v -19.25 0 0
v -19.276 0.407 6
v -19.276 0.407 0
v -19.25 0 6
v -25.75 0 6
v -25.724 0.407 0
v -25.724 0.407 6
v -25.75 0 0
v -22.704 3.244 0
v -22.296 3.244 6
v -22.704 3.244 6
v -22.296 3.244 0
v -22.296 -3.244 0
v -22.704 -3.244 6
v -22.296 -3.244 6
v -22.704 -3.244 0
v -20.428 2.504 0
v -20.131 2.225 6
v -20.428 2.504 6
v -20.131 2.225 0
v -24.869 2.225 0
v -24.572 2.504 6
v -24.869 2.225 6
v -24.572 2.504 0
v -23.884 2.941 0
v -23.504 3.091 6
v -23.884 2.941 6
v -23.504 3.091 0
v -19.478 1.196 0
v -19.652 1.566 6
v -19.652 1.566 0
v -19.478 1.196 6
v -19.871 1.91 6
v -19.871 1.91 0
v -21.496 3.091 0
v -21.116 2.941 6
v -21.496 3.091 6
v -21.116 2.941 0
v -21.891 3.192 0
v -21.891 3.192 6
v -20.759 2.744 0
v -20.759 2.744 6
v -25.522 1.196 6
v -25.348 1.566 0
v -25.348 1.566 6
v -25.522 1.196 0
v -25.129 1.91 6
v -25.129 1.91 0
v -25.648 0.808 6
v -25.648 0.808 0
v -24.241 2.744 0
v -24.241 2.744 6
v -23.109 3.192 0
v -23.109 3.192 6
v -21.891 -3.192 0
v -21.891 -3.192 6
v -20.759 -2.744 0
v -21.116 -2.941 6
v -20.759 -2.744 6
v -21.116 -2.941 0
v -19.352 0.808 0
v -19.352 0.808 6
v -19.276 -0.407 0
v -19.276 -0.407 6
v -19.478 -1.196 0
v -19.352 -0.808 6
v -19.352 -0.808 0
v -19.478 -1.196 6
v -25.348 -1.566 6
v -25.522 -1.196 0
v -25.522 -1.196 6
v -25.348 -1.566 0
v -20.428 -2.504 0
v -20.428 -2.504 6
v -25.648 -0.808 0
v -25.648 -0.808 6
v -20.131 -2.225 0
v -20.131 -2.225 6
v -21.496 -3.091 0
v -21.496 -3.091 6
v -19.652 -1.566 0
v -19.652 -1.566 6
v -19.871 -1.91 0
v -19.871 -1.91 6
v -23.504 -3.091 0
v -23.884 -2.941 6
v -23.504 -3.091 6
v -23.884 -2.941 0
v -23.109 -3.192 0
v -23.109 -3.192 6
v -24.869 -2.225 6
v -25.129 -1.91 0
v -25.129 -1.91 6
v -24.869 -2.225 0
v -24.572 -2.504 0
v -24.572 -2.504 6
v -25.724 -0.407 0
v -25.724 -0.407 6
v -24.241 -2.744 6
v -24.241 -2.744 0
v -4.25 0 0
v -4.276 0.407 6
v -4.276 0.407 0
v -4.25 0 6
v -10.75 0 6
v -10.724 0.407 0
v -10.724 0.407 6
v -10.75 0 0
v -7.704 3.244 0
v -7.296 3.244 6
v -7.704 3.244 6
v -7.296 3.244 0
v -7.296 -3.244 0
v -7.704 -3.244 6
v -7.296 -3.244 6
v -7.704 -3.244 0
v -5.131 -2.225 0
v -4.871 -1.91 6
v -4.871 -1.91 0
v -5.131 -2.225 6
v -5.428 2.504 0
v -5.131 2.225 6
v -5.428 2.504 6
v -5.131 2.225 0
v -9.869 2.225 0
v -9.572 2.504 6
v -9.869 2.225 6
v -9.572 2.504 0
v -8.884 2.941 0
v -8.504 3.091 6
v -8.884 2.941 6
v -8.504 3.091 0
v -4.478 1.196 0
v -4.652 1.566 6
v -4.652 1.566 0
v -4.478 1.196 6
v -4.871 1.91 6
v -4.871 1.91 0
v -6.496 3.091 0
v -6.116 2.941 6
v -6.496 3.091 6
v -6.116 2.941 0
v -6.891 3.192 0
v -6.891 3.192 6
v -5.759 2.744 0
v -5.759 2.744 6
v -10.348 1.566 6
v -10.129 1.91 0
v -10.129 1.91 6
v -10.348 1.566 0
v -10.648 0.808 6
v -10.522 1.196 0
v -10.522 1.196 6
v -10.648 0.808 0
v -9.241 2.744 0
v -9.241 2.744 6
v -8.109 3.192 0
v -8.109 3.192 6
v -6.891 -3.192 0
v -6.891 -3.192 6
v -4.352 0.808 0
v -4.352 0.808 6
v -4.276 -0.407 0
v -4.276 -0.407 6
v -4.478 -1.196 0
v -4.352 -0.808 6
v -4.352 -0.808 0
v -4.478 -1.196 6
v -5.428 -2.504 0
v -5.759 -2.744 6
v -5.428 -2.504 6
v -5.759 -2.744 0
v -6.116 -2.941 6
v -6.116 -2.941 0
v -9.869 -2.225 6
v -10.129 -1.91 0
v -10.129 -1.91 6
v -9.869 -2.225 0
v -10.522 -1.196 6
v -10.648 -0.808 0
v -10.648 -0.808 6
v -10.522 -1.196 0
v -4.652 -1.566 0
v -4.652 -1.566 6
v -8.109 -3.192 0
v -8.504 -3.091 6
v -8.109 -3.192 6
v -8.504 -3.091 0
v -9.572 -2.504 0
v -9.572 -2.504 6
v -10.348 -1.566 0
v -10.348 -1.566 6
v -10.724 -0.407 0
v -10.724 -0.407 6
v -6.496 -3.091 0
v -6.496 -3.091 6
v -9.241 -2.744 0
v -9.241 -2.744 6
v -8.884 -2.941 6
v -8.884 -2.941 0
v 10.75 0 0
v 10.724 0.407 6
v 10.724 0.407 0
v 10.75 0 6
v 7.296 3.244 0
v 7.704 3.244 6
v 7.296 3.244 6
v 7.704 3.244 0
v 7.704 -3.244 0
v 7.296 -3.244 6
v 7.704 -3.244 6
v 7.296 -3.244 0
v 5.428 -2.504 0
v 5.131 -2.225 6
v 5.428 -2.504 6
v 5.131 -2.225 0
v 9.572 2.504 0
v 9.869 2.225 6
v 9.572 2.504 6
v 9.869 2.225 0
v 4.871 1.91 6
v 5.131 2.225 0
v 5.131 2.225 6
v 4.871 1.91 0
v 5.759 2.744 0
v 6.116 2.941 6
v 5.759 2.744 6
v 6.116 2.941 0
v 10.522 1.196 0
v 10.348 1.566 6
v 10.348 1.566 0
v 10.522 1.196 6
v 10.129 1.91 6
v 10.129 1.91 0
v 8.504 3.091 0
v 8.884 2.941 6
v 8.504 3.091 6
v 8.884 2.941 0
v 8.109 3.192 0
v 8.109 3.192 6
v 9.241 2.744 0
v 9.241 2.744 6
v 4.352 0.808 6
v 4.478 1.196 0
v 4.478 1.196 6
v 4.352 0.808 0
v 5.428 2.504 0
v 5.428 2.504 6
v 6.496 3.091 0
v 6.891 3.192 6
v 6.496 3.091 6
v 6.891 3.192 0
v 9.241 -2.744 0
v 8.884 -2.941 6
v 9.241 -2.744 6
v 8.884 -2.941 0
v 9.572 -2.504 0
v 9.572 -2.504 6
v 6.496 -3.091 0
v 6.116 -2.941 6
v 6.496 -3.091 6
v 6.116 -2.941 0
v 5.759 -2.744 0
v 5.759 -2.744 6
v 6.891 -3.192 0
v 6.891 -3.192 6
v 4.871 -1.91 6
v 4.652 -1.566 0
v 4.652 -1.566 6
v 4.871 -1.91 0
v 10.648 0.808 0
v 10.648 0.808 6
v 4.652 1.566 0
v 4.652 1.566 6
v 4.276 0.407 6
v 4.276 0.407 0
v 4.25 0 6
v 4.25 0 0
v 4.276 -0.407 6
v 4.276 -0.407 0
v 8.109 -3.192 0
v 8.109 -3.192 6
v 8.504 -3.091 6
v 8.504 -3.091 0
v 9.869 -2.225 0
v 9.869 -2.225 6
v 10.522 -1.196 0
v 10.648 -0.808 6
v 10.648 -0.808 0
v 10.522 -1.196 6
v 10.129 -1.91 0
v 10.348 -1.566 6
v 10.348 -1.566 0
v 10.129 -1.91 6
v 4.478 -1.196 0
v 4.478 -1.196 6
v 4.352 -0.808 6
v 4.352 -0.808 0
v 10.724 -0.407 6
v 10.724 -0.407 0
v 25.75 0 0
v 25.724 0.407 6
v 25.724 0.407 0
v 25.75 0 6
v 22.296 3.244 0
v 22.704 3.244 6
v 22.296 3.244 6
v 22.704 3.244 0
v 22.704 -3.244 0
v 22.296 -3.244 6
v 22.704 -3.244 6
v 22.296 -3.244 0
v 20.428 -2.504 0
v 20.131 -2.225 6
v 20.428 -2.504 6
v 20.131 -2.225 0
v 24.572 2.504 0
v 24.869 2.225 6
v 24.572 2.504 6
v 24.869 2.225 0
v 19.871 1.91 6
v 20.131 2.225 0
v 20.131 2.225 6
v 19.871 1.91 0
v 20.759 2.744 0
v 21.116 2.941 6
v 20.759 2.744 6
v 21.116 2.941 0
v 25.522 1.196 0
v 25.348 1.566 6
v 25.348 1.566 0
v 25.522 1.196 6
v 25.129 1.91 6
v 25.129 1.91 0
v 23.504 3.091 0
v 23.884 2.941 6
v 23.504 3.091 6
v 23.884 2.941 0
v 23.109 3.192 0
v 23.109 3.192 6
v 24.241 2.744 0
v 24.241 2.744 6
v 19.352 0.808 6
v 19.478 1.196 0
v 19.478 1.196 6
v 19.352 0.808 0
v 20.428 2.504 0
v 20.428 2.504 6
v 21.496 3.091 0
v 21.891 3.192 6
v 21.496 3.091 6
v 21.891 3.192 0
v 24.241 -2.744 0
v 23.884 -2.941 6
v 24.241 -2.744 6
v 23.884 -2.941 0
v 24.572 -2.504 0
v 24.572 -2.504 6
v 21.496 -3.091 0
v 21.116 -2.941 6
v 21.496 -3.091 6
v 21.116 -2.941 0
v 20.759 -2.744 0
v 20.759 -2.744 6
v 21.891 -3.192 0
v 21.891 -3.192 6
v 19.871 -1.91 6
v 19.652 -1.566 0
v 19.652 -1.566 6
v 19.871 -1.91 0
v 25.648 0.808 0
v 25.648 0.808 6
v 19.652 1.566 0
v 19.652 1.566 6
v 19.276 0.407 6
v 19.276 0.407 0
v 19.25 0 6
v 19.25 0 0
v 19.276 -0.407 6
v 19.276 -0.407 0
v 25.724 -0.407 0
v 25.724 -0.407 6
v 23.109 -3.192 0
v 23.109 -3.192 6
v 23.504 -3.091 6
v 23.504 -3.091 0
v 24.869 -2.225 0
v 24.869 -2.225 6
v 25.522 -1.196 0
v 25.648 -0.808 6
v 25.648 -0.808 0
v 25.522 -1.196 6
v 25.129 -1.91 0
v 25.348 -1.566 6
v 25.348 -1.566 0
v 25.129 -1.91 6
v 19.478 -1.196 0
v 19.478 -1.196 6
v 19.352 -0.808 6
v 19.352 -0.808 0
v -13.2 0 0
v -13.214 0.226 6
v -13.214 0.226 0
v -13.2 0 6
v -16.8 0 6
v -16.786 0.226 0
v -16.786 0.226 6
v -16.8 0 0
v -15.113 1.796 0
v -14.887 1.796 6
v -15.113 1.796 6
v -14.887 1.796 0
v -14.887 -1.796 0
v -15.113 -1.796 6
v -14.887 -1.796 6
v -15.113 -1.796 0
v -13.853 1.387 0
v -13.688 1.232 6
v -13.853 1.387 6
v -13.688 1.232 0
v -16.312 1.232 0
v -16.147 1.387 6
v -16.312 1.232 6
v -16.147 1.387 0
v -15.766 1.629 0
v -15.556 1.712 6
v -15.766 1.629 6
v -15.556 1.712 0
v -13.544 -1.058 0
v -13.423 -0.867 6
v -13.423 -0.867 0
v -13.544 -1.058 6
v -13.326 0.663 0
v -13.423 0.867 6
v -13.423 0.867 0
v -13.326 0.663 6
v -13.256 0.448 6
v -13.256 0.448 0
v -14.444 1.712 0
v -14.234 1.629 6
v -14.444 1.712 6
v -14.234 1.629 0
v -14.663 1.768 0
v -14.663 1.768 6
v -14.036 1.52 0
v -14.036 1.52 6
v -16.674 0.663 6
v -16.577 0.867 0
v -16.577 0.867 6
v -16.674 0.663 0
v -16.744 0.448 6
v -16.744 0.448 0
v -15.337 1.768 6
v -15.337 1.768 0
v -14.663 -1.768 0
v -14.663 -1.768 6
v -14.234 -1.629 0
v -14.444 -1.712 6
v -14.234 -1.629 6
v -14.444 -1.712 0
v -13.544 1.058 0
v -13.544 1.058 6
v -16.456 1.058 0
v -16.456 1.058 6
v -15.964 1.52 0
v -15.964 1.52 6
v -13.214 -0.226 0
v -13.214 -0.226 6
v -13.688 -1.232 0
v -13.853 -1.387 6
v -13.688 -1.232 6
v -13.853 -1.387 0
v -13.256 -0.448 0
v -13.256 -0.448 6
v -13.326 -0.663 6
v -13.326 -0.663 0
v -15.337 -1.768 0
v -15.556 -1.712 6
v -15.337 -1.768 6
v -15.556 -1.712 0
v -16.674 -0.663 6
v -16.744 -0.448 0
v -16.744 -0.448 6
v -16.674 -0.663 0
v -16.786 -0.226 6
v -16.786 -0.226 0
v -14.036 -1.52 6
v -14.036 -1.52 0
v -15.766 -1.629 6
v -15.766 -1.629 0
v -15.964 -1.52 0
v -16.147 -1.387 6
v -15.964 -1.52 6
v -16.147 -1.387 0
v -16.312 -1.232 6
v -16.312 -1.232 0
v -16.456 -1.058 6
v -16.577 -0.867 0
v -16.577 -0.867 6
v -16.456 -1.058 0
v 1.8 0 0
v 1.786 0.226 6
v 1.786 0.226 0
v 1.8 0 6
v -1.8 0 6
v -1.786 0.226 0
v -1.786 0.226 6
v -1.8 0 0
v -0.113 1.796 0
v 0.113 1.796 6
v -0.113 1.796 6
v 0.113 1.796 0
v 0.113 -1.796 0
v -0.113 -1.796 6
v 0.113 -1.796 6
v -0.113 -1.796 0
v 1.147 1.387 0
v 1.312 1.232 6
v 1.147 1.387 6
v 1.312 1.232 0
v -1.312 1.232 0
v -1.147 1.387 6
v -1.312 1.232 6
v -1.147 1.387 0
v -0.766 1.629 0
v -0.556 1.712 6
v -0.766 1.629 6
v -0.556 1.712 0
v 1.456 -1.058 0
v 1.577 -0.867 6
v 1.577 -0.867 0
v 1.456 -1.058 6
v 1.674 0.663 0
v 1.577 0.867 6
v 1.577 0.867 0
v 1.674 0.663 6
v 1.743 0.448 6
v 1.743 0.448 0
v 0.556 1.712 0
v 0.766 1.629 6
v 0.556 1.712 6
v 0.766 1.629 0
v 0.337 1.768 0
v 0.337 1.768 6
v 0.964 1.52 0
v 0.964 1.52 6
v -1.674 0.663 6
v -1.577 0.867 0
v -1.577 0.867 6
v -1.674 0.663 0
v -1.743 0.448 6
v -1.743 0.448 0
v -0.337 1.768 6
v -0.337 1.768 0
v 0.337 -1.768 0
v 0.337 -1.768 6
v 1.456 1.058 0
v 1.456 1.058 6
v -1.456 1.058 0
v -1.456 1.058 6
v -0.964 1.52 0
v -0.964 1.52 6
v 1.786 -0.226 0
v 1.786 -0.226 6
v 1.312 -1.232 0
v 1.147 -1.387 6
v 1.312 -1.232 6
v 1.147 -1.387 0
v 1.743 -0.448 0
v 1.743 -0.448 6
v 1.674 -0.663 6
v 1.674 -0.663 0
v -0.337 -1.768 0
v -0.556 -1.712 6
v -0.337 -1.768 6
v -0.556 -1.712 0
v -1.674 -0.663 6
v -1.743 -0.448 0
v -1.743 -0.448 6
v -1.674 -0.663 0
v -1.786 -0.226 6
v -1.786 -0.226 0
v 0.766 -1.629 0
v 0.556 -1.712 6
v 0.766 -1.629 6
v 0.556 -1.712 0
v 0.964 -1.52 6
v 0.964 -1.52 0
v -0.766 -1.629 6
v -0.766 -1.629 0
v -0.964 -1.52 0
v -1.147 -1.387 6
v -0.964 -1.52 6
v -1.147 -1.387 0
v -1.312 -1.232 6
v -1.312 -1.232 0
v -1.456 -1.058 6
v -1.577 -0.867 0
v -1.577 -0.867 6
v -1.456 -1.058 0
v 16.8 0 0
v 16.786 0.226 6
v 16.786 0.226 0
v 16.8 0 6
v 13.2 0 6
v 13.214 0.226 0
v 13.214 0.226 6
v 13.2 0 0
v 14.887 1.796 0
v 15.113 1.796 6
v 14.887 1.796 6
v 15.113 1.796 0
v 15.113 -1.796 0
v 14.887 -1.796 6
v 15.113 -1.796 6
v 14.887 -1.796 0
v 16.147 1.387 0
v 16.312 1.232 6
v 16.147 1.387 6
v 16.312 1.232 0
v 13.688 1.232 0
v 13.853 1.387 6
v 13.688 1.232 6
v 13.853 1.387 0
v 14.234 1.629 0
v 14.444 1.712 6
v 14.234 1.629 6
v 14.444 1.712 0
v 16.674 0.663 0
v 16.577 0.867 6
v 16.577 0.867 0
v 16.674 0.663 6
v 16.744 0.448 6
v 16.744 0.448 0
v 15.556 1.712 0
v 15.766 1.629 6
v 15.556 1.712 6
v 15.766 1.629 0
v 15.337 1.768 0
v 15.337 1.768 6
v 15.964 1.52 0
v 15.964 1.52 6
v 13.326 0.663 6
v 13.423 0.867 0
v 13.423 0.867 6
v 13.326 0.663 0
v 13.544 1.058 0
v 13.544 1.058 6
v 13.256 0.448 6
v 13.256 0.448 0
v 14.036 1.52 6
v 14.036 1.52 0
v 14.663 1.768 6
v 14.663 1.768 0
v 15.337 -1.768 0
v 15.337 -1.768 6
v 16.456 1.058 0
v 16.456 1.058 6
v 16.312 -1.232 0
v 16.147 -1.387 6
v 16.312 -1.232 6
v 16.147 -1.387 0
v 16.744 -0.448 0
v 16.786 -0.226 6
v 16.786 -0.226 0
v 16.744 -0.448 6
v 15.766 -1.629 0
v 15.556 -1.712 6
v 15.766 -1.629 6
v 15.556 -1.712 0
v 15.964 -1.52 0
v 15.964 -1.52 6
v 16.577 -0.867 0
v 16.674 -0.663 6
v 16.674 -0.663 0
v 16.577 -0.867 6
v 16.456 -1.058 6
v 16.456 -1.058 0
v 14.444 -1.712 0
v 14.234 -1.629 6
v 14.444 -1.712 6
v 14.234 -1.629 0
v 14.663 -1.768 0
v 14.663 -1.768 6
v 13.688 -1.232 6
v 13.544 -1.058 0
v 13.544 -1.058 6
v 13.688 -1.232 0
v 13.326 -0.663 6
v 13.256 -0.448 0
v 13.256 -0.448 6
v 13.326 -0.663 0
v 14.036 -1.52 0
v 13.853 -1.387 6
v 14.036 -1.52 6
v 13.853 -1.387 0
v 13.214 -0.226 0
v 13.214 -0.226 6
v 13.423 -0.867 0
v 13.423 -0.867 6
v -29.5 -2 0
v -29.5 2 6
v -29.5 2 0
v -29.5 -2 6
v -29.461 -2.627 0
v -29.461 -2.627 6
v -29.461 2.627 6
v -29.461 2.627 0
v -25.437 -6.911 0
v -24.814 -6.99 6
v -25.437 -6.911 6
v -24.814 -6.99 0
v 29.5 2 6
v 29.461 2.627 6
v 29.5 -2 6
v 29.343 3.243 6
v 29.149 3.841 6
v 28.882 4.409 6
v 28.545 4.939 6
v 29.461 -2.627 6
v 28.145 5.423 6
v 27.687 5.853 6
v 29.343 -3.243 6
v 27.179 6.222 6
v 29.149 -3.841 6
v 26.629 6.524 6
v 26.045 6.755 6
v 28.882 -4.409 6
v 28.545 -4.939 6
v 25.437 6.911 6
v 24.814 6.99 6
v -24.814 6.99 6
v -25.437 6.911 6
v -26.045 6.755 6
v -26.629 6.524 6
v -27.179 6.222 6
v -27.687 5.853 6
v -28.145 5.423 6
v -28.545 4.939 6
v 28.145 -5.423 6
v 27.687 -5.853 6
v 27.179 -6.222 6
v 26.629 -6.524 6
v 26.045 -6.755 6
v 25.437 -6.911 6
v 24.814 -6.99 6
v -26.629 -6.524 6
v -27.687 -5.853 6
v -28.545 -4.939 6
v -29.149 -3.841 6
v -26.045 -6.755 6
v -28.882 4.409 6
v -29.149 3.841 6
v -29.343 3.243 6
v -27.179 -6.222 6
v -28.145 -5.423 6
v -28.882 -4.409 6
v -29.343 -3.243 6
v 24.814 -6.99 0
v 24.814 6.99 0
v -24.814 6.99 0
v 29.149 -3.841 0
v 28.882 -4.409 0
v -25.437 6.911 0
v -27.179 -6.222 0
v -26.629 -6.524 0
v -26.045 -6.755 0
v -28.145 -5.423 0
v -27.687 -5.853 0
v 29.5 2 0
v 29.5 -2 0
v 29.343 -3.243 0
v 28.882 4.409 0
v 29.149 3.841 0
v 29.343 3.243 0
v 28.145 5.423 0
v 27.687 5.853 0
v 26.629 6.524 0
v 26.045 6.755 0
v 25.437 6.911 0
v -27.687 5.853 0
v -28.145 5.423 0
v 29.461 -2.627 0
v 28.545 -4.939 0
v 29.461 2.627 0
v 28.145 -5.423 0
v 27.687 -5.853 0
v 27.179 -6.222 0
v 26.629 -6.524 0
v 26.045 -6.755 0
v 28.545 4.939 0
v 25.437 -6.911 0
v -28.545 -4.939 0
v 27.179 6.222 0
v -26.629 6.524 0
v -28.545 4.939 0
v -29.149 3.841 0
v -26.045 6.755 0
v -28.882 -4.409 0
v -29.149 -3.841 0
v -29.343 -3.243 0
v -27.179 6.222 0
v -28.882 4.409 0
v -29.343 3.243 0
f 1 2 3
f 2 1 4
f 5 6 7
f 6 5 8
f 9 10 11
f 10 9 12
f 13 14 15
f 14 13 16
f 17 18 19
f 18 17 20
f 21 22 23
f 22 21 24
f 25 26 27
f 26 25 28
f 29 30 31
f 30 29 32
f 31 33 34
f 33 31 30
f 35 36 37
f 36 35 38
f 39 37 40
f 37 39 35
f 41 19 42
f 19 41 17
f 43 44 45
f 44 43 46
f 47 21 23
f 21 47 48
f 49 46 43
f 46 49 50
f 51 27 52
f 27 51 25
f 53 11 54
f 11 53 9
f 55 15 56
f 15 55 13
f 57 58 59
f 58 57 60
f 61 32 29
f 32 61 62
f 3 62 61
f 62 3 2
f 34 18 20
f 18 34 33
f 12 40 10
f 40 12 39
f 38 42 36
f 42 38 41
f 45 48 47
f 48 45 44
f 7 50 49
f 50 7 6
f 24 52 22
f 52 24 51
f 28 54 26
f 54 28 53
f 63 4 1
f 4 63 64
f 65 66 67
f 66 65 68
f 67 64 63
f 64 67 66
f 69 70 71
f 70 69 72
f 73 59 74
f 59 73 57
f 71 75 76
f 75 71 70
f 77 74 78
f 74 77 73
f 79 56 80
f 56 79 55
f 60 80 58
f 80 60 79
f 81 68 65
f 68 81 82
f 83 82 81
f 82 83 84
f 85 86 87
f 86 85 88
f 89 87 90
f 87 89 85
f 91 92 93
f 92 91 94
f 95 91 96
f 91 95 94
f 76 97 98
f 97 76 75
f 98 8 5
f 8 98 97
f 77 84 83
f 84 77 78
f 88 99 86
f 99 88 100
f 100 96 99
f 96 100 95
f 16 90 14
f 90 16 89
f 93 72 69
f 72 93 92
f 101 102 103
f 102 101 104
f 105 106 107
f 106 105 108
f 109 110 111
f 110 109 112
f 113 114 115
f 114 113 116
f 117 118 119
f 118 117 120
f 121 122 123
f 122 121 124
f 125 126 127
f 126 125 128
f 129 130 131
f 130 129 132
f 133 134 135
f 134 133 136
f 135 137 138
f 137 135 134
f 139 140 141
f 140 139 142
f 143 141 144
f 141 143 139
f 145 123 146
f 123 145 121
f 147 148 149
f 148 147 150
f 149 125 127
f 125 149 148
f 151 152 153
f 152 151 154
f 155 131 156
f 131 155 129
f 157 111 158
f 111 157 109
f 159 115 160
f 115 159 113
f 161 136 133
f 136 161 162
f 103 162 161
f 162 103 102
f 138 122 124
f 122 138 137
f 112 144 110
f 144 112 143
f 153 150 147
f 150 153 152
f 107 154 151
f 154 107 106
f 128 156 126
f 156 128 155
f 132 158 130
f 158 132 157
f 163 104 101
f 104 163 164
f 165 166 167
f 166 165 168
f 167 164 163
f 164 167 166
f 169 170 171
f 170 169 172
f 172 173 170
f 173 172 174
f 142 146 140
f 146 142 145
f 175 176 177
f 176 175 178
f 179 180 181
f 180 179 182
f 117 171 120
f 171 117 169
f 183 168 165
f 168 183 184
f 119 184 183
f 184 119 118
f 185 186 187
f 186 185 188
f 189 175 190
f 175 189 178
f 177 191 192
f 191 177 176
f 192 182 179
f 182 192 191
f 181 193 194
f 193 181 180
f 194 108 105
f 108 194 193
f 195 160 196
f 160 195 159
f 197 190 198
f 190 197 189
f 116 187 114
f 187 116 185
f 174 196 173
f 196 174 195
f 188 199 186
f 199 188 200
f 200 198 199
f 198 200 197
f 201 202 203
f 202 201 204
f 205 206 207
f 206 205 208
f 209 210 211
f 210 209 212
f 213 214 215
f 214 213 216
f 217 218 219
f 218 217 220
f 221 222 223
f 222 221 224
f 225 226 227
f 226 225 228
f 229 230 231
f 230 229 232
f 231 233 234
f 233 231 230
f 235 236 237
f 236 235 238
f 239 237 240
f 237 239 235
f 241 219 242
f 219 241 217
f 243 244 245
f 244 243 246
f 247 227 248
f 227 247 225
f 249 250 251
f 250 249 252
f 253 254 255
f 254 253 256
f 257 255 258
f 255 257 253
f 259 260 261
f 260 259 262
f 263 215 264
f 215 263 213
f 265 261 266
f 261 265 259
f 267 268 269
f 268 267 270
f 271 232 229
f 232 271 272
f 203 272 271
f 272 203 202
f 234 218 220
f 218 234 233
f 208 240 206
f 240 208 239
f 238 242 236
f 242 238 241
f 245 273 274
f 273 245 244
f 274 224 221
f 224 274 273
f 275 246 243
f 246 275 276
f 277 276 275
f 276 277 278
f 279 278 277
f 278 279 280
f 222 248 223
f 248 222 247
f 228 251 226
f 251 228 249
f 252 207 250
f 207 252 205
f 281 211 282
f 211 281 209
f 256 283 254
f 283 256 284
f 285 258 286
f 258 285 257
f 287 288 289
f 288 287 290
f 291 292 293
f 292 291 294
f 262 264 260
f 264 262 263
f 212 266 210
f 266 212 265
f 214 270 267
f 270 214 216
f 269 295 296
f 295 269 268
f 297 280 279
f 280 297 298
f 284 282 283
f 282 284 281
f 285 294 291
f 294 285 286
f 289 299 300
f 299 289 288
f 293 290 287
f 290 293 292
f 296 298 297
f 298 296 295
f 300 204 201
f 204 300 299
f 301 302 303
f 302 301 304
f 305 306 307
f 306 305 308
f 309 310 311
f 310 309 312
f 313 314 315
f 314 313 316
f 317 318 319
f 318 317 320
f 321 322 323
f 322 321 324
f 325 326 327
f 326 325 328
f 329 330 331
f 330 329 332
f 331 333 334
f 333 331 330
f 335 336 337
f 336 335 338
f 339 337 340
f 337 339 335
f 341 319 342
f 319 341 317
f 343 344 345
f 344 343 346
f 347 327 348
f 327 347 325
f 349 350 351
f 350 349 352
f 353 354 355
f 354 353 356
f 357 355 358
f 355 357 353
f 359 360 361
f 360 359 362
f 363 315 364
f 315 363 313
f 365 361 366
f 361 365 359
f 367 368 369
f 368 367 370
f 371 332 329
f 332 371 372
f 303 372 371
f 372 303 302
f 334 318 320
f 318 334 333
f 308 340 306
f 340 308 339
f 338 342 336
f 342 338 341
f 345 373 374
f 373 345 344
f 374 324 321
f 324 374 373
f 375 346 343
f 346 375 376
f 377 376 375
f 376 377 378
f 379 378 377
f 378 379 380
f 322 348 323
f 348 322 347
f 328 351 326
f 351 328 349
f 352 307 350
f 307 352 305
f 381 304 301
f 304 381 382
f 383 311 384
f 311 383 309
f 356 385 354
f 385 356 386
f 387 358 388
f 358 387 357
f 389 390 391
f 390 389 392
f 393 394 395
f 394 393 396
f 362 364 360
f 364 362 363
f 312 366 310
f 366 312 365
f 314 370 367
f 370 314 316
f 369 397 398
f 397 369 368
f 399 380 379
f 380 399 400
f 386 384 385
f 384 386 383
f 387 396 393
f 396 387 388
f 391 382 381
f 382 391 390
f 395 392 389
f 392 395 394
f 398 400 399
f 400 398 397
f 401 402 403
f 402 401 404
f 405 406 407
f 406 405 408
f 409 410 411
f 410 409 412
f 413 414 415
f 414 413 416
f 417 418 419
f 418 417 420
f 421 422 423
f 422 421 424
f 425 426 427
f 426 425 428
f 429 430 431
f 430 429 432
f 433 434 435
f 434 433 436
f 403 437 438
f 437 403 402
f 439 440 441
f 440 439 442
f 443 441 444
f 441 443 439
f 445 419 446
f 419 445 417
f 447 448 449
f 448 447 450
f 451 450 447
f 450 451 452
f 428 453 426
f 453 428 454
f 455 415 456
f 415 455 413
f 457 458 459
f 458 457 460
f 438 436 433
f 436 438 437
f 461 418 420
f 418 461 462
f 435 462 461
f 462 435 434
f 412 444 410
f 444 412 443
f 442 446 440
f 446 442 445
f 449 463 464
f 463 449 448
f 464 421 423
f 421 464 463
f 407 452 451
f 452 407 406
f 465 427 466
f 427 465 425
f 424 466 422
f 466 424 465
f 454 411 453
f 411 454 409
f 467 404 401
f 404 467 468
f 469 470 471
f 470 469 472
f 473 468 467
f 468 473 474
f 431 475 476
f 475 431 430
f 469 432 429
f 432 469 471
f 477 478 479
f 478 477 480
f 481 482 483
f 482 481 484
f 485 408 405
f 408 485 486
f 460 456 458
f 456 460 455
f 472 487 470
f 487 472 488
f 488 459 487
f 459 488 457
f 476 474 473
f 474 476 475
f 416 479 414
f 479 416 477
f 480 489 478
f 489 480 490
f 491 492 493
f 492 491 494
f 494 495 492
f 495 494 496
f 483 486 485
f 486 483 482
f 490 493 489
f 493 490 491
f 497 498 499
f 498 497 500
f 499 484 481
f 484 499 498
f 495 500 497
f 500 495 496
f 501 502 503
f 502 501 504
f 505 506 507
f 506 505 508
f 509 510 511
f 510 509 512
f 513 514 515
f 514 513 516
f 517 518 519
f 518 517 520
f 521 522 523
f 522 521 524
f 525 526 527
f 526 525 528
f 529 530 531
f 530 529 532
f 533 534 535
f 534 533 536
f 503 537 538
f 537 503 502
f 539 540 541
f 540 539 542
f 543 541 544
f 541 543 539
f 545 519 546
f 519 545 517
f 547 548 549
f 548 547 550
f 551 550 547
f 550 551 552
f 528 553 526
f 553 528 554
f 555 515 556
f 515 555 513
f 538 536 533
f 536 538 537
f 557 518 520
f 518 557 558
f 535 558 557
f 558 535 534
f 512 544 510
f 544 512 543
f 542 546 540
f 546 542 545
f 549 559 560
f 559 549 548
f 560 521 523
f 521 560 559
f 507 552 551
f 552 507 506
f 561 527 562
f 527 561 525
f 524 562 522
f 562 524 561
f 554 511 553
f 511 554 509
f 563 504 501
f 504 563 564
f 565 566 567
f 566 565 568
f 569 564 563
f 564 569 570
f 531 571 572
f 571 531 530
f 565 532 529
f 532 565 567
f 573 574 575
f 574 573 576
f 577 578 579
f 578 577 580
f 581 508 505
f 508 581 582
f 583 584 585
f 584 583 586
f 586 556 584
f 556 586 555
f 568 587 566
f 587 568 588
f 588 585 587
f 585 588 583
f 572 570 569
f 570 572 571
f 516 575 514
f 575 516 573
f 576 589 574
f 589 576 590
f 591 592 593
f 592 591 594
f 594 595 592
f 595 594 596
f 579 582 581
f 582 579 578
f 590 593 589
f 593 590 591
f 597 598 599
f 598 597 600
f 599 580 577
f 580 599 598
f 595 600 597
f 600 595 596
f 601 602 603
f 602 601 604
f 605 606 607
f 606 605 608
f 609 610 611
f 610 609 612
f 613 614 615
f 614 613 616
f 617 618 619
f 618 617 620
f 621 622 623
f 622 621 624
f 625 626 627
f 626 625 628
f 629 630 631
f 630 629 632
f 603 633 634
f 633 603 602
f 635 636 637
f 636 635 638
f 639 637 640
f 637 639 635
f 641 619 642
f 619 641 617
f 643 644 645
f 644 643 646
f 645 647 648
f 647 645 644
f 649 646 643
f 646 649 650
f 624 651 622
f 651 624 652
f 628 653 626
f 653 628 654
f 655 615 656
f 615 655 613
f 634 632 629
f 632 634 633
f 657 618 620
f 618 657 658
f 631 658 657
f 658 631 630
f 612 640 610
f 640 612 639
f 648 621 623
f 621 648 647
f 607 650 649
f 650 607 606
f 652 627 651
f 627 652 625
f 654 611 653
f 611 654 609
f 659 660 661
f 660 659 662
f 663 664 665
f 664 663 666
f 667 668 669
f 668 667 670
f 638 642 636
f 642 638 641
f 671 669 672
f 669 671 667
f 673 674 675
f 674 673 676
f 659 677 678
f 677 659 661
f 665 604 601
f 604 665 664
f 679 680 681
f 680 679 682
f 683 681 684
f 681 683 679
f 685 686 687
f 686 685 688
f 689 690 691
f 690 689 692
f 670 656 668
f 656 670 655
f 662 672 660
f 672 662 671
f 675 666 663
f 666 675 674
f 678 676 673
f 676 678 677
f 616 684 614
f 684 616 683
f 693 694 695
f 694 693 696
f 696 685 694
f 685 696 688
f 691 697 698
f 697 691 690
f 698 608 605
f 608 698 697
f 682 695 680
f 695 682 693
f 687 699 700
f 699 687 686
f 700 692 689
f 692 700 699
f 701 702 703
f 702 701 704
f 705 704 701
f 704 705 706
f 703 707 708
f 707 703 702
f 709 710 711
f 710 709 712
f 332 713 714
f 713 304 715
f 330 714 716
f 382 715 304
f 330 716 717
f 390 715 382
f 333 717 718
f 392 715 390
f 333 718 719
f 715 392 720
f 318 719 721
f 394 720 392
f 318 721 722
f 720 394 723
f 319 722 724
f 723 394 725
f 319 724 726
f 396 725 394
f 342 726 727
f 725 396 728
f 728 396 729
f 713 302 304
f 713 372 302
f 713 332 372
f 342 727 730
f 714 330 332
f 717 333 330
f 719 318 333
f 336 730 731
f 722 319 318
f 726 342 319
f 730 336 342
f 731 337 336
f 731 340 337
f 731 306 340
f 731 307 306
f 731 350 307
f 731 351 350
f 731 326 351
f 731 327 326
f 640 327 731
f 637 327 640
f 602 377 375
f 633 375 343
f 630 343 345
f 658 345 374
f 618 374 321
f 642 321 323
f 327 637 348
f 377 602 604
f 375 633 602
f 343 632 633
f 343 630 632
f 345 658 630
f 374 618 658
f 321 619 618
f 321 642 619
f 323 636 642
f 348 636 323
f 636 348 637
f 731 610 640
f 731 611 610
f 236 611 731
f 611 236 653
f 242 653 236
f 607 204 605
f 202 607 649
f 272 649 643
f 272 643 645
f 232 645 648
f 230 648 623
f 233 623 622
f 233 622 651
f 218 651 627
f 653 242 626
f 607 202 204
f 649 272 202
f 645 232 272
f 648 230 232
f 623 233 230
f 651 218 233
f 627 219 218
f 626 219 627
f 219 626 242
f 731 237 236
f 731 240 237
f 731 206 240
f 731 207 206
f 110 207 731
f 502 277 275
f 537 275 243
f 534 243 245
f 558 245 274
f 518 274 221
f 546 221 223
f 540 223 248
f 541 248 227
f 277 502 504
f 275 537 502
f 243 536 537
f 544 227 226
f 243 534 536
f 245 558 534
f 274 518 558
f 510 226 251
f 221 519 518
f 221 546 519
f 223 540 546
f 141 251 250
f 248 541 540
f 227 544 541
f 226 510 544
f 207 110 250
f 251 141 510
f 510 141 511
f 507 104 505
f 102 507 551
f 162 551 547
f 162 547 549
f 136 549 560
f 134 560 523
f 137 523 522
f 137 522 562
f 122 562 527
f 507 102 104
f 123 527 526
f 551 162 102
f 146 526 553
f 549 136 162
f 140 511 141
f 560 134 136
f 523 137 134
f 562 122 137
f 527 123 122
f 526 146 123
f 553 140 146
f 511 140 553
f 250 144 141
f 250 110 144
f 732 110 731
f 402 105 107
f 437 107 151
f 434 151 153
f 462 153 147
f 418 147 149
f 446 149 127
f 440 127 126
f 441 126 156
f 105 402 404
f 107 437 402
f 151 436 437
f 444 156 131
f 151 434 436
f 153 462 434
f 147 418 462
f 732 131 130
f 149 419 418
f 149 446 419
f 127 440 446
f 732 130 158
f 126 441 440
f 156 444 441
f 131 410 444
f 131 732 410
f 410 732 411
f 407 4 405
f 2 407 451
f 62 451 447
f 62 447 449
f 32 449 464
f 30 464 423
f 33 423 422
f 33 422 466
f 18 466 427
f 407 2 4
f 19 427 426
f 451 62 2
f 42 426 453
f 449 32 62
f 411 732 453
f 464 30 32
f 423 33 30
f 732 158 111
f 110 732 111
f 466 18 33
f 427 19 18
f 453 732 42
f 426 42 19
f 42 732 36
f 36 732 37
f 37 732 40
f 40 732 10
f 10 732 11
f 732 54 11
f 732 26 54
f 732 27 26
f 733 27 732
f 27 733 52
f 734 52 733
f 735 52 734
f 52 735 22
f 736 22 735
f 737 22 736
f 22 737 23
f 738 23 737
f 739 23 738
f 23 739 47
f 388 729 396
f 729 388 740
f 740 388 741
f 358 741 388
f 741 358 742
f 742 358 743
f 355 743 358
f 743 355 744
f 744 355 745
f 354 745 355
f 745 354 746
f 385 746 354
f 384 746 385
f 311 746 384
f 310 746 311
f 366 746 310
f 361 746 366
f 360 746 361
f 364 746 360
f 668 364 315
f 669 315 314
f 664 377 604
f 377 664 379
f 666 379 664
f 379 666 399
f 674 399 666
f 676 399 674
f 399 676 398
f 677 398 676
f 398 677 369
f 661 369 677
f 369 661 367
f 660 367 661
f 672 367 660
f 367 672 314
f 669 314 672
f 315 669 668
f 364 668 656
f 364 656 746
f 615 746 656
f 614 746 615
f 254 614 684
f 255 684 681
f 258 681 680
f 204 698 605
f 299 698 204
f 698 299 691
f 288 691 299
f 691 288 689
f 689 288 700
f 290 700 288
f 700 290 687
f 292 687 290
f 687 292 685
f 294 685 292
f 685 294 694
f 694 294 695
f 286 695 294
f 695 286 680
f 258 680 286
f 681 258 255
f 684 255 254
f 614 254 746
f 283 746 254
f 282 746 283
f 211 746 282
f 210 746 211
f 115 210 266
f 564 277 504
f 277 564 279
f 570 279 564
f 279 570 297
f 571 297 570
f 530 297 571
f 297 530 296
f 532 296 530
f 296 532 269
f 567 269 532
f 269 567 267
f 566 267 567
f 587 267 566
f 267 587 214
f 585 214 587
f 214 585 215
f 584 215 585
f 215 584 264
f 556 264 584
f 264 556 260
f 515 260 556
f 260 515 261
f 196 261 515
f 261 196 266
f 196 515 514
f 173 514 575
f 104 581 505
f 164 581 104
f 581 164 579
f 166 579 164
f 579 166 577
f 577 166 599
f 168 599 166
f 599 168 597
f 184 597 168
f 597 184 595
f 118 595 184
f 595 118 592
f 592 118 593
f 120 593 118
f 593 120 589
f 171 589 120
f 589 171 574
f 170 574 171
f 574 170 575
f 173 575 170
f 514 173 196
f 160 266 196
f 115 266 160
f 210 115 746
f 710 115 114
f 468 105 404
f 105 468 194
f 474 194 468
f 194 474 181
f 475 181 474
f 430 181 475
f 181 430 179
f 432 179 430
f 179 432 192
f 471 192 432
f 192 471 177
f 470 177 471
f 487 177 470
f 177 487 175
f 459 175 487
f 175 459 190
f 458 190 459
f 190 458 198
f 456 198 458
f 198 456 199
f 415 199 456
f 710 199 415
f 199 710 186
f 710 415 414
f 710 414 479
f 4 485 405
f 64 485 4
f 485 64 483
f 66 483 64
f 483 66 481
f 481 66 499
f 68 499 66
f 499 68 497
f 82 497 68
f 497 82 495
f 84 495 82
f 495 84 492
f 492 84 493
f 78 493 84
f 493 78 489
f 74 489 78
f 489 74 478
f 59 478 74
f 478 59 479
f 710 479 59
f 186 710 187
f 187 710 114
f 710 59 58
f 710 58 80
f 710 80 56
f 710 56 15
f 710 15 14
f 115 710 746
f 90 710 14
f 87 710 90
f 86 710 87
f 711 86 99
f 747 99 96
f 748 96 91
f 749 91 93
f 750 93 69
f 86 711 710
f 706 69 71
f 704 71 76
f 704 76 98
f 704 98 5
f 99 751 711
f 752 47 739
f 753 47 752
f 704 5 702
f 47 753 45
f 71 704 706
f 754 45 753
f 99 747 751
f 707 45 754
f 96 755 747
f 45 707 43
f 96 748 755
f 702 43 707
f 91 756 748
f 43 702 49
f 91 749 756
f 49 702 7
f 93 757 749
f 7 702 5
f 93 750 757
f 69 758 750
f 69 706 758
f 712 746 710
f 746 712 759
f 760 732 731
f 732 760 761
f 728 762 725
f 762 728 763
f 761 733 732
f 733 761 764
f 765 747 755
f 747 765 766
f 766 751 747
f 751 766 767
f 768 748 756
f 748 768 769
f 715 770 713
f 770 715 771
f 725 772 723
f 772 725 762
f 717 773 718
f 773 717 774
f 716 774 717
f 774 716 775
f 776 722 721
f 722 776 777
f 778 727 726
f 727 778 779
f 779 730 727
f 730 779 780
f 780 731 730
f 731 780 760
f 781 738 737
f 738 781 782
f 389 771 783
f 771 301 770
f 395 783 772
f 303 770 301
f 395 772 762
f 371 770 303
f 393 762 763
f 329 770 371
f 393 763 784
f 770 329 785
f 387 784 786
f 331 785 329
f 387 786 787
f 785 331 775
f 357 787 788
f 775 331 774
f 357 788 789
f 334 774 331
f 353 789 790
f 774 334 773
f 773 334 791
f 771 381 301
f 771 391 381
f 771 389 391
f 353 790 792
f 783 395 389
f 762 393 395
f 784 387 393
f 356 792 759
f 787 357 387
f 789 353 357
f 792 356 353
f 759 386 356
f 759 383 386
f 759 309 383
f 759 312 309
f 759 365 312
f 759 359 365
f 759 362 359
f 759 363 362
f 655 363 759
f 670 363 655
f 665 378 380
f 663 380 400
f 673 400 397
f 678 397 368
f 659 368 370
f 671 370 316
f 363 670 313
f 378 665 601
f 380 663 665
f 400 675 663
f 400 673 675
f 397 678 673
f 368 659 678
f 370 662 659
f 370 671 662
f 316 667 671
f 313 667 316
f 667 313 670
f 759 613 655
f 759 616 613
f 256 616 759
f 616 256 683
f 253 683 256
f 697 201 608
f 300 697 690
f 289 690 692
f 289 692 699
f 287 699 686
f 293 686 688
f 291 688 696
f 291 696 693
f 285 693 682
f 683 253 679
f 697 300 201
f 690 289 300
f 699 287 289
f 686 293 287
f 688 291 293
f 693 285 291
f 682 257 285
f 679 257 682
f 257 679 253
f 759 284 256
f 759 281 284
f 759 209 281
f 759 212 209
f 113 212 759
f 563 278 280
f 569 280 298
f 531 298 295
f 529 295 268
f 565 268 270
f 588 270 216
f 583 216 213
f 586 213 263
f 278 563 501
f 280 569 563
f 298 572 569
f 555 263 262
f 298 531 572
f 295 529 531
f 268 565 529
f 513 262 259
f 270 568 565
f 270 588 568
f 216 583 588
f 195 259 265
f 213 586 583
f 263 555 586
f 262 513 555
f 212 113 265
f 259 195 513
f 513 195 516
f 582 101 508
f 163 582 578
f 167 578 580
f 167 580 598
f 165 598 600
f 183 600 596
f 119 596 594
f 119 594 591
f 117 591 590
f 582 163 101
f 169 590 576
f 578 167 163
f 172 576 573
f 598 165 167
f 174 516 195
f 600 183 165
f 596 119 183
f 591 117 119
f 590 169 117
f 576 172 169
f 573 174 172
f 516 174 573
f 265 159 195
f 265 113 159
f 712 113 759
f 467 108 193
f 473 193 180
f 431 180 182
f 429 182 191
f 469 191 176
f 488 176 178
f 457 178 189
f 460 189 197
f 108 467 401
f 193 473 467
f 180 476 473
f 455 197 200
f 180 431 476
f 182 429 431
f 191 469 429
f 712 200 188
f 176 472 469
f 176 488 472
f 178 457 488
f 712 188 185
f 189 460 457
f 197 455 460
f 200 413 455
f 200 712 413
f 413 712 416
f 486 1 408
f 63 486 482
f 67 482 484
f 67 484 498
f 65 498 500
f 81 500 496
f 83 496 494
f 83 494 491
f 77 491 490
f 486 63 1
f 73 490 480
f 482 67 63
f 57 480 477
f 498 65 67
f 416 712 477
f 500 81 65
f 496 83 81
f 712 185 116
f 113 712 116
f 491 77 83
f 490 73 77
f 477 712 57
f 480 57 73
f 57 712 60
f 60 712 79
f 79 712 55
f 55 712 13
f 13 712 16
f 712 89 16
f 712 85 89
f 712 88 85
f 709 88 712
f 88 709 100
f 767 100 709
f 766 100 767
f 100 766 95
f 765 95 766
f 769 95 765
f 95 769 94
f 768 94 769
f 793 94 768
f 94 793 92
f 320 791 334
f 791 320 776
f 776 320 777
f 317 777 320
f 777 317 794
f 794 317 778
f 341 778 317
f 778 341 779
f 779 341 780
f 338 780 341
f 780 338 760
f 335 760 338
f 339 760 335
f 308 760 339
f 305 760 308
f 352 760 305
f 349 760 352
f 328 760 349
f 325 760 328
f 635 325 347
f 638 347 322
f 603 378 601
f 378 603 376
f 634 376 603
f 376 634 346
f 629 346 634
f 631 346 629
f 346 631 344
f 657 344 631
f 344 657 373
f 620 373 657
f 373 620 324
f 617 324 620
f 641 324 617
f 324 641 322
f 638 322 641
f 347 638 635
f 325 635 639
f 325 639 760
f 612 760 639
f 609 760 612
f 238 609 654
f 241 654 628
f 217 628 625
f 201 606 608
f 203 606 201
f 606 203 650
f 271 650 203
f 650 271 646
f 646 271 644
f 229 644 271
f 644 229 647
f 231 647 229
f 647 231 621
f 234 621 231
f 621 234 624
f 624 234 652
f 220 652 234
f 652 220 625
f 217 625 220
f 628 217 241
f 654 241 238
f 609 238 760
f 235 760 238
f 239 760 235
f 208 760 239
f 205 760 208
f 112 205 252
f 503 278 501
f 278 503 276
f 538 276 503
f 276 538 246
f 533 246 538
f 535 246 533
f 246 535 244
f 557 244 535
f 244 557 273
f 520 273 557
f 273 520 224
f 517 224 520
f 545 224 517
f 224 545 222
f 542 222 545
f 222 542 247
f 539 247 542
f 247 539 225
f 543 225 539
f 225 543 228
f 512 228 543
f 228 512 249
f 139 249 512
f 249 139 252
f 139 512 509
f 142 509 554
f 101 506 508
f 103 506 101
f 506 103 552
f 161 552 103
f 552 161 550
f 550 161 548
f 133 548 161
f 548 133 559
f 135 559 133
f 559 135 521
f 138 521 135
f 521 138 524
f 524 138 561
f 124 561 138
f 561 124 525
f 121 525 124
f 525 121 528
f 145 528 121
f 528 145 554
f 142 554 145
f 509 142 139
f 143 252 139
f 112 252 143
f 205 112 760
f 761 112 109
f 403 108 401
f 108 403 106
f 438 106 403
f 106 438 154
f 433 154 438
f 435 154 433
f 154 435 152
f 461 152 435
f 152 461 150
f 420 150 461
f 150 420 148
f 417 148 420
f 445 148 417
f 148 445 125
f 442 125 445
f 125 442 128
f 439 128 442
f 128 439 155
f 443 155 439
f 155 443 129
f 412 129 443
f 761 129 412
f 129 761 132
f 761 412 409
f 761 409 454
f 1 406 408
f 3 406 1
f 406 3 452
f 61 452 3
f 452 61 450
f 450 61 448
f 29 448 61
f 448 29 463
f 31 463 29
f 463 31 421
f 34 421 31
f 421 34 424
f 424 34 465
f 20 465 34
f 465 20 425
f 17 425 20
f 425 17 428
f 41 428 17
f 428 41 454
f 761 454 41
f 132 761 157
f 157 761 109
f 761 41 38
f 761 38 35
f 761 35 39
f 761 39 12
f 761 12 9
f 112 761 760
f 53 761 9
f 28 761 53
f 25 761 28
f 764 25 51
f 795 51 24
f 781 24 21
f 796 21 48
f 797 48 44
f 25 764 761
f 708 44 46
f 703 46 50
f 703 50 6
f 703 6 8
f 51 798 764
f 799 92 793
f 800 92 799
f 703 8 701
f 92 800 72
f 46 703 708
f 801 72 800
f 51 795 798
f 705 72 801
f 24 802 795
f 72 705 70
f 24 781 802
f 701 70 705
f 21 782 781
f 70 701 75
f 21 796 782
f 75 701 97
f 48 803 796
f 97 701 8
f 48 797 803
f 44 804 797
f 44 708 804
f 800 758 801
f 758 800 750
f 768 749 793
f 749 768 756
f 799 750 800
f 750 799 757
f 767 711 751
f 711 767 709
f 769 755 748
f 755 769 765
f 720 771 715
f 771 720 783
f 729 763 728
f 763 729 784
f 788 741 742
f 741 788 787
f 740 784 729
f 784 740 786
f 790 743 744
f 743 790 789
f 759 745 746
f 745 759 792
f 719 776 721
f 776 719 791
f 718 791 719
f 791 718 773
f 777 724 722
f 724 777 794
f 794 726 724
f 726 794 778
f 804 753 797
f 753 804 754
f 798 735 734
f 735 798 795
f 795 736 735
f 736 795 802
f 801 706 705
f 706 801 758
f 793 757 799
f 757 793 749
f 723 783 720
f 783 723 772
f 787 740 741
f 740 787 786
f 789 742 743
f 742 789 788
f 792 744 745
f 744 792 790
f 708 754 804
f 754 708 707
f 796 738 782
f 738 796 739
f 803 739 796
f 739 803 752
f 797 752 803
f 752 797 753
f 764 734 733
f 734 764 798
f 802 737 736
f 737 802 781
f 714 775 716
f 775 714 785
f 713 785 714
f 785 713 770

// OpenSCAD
$fn = 50;


difference() {
	union() {
		translate(v = [0, 0, 0]) {
			rotate(a = [0, 0, 0]) {
				hull() {
					translate(v = [-24.5000000000, 2.0000000000, 0]) {
						rotate(a = [0, 0, 0]) {
							translate(v = [0, 0, 0]) {
								rotate(a = [0, 0, 0]) {
									cylinder(h = 6, r = 5);
								}
							}
						}
					}
					translate(v = [24.5000000000, 2.0000000000, 0]) {
						rotate(a = [0, 0, 0]) {
							translate(v = [0, 0, 0]) {
								rotate(a = [0, 0, 0]) {
									cylinder(h = 6, r = 5);
								}
							}
						}
					}
					translate(v = [-24.5000000000, -2.0000000000, 0]) {
						rotate(a = [0, 0, 0]) {
							translate(v = [0, 0, 0]) {
								rotate(a = [0, 0, 0]) {
									cylinder(h = 6, r = 5);
								}
							}
						}
					}
					translate(v = [24.5000000000, -2.0000000000, 0]) {
						rotate(a = [0, 0, 0]) {
							translate(v = [0, 0, 0]) {
								rotate(a = [0, 0, 0]) {
									cylinder(h = 6, r = 5);
								}
							}
						}
					}
				}
			}
		}
	}
	union() {
		translate(v = [-22.5000000000, 0.0000000000, 0]) {
			rotate(a = [0, 0, 0]) {
				translate(v = [0, 0, -50]) {
					rotate(a = [0, 0, 0]) {
						cylinder(h = 100, r = 3.2500000000);
					}
				}
			}
		}
		translate(v = [-7.5000000000, 0.0000000000, 0]) {
			rotate(a = [0, 0, 0]) {
				translate(v = [0, 0, -50]) {
					rotate(a = [0, 0, 0]) {
						cylinder(h = 100, r = 3.2500000000);
					}
				}
			}
		}
		translate(v = [7.5000000000, 0.0000000000, 0]) {
			rotate(a = [0, 0, 0]) {
				translate(v = [0, 0, -50]) {
					rotate(a = [0, 0, 0]) {
						cylinder(h = 100, r = 3.2500000000);
					}
				}
			}
		}
		translate(v = [22.5000000000, 0.0000000000, 0]) {
			rotate(a = [0, 0, 0]) {
				translate(v = [0, 0, -50]) {
					rotate(a = [0, 0, 0]) {
						cylinder(h = 100, r = 3.2500000000);
					}
				}
			}
		}
		translate(v = [-22.5000000000, 0.0000000000, 0]) {
			rotate(a = [0, 0, 0]) {
				translate(v = [0, 0, -50]) {
					rotate(a = [0, 0, 0]) {
						cylinder(h = 100, r = 1.8000000000);
					}
				}
			}
		}
		translate(v = [-15.0000000000, 0.0000000000, 0]) {
			rotate(a = [0, 0, 0]) {
				translate(v = [0, 0, -50]) {
					rotate(a = [0, 0, 0]) {
						cylinder(h = 100, r = 1.8000000000);
					}
				}
			}
		}
		translate(v = [-7.5000000000, 0.0000000000, 0]) {
			rotate(a = [0, 0, 0]) {
				translate(v = [0, 0, -50]) {
					rotate(a = [0, 0, 0]) {
						cylinder(h = 100, r = 1.8000000000);
					}
				}
			}
		}
		translate(v = [0.0000000000, 0.0000000000, 0]) {
			rotate(a = [0, 0, 0]) {
				translate(v = [0, 0, -50]) {
					rotate(a = [0, 0, 0]) {
						cylinder(h = 100, r = 1.8000000000);
					}
				}
			}
		}
		translate(v = [7.5000000000, 0.0000000000, 0]) {
			rotate(a = [0, 0, 0]) {
				translate(v = [0, 0, -50]) {
					rotate(a = [0, 0, 0]) {
						cylinder(h = 100, r = 1.8000000000);
					}
				}
			}
		}
		translate(v = [15.0000000000, 0.0000000000, 0]) {
			rotate(a = [0, 0, 0]) {
				translate(v = [0, 0, -50]) {
					rotate(a = [0, 0, 0]) {
						cylinder(h = 100, r = 1.8000000000);
					}
				}
			}
		}
		translate(v = [22.5000000000, 0.0000000000, 0]) {
			rotate(a = [0, 0, 0]) {
				translate(v = [0, 0, -50]) {
					rotate(a = [0, 0, 0]) {
						cylinder(h = 100, r = 1.8000000000);
					}
				}
			}
		}
	}
}
